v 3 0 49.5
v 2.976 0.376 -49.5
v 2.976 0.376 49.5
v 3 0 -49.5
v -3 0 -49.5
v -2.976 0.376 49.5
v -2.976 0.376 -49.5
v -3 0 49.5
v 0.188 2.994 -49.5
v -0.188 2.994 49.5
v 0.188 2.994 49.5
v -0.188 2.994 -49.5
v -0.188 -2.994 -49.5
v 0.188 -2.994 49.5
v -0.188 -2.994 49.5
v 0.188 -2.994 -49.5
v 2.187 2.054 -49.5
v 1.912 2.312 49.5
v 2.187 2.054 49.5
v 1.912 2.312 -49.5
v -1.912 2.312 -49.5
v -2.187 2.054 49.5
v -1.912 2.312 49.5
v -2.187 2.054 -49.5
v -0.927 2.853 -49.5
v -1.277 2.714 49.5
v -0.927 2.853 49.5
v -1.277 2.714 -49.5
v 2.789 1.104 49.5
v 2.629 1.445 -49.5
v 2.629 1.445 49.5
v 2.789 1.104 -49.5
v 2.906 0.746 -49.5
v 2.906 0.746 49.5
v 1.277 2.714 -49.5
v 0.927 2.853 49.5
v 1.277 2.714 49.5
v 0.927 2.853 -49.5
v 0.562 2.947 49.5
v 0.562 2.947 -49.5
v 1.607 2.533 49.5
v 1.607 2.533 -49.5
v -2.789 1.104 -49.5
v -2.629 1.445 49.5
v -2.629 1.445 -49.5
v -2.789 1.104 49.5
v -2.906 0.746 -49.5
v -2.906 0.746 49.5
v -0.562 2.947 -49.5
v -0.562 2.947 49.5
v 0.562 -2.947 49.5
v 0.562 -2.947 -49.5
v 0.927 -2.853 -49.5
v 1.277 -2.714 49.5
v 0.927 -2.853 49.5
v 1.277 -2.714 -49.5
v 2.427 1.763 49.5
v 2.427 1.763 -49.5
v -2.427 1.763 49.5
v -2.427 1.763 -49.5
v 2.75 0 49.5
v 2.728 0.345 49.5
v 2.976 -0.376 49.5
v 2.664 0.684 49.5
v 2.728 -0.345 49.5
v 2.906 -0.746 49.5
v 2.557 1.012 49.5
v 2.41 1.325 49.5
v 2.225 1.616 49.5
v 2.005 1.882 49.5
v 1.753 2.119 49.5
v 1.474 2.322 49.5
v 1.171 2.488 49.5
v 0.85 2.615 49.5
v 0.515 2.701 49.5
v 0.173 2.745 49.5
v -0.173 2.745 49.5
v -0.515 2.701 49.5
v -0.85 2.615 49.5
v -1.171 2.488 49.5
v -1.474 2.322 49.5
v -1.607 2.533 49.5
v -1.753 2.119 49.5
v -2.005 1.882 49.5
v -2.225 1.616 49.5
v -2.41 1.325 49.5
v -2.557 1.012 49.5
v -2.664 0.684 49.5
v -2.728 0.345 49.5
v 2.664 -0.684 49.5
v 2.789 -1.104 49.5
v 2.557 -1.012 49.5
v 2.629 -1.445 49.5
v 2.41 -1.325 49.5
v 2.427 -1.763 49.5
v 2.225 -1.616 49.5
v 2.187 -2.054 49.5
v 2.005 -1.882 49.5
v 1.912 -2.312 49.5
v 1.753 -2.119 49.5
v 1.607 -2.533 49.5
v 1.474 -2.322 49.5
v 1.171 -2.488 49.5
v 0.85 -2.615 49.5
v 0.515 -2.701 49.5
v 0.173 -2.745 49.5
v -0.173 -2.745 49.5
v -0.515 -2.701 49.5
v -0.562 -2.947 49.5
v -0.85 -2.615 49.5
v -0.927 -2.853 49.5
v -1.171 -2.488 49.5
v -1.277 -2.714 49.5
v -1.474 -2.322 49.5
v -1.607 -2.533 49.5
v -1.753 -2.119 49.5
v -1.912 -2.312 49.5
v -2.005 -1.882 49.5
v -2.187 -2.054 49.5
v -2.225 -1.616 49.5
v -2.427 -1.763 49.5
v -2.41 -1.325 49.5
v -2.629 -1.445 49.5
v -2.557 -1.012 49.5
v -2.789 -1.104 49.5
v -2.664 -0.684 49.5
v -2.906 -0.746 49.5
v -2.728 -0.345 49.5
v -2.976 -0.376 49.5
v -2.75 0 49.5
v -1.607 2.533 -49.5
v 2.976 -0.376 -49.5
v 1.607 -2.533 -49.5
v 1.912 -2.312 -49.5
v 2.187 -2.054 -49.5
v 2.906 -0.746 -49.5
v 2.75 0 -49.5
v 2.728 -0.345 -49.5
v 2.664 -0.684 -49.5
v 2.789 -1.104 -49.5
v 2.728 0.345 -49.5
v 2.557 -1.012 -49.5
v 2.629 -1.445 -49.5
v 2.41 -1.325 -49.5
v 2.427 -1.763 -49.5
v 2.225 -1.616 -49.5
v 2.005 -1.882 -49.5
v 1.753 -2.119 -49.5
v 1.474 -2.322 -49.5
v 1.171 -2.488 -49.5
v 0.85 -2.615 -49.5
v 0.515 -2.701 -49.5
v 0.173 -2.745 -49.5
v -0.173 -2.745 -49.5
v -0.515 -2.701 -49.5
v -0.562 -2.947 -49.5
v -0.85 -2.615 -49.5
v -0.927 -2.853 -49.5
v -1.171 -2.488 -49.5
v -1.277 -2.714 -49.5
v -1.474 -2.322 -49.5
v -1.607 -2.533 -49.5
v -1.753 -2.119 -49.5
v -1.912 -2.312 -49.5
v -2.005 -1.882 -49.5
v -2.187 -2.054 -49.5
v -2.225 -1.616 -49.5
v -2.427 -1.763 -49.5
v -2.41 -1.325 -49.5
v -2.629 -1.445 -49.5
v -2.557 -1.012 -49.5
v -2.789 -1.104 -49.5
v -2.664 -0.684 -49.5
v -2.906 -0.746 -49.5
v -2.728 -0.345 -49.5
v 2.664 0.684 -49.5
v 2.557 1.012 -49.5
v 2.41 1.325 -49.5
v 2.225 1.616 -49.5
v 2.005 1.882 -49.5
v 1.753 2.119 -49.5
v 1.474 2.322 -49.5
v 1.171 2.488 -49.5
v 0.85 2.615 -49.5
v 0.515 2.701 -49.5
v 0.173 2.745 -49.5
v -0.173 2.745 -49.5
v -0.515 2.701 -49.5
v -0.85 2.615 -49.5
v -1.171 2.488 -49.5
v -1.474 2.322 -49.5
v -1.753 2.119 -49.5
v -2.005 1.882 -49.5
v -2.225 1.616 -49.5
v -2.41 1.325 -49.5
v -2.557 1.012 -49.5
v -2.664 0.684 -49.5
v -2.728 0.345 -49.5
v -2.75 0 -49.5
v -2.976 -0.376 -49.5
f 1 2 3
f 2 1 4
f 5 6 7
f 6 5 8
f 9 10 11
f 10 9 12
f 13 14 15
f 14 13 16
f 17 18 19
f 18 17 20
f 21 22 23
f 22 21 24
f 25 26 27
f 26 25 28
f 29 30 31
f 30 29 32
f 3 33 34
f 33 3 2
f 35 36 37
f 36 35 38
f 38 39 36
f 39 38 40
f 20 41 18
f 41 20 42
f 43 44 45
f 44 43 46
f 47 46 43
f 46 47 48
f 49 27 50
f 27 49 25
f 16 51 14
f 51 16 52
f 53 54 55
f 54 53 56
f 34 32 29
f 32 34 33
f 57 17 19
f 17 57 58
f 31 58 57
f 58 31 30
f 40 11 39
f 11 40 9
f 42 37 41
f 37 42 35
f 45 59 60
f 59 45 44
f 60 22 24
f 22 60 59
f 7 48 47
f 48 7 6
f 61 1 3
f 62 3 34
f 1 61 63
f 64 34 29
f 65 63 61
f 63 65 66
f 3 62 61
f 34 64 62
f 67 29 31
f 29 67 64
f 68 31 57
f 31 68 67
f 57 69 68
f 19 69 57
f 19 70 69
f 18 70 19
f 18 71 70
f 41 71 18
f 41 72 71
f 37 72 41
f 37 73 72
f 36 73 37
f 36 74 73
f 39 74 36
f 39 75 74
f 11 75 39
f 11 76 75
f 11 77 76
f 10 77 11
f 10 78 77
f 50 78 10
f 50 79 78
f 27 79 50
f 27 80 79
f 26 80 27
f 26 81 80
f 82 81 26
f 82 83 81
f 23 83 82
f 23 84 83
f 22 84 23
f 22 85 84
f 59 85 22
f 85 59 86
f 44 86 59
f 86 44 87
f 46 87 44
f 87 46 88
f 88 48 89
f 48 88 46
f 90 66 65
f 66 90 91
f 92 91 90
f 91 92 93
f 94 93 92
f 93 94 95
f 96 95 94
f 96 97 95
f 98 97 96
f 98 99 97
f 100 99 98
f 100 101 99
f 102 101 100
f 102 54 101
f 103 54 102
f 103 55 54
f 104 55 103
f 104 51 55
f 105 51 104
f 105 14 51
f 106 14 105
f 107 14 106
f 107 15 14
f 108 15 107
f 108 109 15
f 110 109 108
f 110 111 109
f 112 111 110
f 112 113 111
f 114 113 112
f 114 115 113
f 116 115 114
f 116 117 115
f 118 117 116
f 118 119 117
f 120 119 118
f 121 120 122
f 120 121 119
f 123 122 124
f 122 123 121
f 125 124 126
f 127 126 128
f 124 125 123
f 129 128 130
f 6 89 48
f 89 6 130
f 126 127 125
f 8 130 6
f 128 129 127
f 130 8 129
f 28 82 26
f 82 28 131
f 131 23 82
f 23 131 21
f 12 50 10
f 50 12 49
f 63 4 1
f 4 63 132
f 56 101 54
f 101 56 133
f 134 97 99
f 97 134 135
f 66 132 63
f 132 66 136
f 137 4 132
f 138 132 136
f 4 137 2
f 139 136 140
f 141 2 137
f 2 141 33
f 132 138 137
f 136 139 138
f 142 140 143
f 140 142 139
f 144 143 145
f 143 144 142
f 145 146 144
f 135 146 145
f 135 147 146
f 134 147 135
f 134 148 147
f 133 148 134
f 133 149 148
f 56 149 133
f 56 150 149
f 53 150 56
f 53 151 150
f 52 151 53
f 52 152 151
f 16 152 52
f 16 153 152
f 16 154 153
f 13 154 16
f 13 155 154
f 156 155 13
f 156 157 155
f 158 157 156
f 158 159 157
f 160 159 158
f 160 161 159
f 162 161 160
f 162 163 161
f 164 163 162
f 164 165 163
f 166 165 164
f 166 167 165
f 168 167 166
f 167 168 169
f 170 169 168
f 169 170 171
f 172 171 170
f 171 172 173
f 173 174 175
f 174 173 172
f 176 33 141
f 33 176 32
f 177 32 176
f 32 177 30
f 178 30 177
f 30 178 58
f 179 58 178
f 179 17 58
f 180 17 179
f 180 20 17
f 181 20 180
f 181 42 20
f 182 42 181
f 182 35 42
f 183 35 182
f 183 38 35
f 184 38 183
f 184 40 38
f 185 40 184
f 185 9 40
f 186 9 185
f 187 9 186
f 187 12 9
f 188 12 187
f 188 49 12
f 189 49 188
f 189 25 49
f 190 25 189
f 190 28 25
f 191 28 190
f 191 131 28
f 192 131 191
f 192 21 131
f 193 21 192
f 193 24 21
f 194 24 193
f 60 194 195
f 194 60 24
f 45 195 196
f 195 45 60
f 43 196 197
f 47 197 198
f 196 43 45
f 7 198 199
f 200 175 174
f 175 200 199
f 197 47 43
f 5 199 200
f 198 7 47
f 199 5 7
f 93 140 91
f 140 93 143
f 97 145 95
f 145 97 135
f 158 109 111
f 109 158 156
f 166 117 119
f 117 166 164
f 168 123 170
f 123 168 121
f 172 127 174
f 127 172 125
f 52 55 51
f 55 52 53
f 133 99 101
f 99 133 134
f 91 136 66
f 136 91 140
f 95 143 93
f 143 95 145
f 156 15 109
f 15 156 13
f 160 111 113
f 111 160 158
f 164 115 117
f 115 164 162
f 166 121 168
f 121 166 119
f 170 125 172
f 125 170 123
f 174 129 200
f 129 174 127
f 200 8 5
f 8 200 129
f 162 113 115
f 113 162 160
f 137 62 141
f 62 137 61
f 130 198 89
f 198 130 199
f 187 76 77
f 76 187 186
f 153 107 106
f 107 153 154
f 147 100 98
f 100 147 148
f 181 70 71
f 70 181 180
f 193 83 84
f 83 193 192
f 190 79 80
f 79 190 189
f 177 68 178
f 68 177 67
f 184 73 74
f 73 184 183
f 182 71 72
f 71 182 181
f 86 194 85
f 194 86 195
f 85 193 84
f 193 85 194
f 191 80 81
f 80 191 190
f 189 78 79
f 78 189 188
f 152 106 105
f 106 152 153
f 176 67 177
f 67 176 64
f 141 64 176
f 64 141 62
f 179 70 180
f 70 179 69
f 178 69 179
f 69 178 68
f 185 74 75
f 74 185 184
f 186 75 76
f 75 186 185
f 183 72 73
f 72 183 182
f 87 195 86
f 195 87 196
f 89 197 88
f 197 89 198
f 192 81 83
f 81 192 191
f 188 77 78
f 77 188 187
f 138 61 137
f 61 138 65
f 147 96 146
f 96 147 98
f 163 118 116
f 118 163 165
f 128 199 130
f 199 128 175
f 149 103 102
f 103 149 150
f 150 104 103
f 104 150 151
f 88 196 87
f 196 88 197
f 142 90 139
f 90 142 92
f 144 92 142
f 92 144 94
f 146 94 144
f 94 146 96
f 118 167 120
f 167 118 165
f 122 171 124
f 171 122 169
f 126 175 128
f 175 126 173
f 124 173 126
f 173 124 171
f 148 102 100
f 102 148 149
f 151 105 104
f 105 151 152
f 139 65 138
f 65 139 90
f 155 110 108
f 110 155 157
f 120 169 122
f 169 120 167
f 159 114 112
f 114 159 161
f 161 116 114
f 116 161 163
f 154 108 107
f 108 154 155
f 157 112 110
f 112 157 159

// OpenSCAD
$fn = 50;


difference() {
	union() {
		translate(v = [0, 0, -49.5000000000]) {
			cylinder(h = 99, r = 3.0000000000);
		}
	}
	union() {
		translate(v = [0, 0, -100.0000000000]) {
			cylinder(h = 200, r = 2.7500000000);
		}
	}
}
